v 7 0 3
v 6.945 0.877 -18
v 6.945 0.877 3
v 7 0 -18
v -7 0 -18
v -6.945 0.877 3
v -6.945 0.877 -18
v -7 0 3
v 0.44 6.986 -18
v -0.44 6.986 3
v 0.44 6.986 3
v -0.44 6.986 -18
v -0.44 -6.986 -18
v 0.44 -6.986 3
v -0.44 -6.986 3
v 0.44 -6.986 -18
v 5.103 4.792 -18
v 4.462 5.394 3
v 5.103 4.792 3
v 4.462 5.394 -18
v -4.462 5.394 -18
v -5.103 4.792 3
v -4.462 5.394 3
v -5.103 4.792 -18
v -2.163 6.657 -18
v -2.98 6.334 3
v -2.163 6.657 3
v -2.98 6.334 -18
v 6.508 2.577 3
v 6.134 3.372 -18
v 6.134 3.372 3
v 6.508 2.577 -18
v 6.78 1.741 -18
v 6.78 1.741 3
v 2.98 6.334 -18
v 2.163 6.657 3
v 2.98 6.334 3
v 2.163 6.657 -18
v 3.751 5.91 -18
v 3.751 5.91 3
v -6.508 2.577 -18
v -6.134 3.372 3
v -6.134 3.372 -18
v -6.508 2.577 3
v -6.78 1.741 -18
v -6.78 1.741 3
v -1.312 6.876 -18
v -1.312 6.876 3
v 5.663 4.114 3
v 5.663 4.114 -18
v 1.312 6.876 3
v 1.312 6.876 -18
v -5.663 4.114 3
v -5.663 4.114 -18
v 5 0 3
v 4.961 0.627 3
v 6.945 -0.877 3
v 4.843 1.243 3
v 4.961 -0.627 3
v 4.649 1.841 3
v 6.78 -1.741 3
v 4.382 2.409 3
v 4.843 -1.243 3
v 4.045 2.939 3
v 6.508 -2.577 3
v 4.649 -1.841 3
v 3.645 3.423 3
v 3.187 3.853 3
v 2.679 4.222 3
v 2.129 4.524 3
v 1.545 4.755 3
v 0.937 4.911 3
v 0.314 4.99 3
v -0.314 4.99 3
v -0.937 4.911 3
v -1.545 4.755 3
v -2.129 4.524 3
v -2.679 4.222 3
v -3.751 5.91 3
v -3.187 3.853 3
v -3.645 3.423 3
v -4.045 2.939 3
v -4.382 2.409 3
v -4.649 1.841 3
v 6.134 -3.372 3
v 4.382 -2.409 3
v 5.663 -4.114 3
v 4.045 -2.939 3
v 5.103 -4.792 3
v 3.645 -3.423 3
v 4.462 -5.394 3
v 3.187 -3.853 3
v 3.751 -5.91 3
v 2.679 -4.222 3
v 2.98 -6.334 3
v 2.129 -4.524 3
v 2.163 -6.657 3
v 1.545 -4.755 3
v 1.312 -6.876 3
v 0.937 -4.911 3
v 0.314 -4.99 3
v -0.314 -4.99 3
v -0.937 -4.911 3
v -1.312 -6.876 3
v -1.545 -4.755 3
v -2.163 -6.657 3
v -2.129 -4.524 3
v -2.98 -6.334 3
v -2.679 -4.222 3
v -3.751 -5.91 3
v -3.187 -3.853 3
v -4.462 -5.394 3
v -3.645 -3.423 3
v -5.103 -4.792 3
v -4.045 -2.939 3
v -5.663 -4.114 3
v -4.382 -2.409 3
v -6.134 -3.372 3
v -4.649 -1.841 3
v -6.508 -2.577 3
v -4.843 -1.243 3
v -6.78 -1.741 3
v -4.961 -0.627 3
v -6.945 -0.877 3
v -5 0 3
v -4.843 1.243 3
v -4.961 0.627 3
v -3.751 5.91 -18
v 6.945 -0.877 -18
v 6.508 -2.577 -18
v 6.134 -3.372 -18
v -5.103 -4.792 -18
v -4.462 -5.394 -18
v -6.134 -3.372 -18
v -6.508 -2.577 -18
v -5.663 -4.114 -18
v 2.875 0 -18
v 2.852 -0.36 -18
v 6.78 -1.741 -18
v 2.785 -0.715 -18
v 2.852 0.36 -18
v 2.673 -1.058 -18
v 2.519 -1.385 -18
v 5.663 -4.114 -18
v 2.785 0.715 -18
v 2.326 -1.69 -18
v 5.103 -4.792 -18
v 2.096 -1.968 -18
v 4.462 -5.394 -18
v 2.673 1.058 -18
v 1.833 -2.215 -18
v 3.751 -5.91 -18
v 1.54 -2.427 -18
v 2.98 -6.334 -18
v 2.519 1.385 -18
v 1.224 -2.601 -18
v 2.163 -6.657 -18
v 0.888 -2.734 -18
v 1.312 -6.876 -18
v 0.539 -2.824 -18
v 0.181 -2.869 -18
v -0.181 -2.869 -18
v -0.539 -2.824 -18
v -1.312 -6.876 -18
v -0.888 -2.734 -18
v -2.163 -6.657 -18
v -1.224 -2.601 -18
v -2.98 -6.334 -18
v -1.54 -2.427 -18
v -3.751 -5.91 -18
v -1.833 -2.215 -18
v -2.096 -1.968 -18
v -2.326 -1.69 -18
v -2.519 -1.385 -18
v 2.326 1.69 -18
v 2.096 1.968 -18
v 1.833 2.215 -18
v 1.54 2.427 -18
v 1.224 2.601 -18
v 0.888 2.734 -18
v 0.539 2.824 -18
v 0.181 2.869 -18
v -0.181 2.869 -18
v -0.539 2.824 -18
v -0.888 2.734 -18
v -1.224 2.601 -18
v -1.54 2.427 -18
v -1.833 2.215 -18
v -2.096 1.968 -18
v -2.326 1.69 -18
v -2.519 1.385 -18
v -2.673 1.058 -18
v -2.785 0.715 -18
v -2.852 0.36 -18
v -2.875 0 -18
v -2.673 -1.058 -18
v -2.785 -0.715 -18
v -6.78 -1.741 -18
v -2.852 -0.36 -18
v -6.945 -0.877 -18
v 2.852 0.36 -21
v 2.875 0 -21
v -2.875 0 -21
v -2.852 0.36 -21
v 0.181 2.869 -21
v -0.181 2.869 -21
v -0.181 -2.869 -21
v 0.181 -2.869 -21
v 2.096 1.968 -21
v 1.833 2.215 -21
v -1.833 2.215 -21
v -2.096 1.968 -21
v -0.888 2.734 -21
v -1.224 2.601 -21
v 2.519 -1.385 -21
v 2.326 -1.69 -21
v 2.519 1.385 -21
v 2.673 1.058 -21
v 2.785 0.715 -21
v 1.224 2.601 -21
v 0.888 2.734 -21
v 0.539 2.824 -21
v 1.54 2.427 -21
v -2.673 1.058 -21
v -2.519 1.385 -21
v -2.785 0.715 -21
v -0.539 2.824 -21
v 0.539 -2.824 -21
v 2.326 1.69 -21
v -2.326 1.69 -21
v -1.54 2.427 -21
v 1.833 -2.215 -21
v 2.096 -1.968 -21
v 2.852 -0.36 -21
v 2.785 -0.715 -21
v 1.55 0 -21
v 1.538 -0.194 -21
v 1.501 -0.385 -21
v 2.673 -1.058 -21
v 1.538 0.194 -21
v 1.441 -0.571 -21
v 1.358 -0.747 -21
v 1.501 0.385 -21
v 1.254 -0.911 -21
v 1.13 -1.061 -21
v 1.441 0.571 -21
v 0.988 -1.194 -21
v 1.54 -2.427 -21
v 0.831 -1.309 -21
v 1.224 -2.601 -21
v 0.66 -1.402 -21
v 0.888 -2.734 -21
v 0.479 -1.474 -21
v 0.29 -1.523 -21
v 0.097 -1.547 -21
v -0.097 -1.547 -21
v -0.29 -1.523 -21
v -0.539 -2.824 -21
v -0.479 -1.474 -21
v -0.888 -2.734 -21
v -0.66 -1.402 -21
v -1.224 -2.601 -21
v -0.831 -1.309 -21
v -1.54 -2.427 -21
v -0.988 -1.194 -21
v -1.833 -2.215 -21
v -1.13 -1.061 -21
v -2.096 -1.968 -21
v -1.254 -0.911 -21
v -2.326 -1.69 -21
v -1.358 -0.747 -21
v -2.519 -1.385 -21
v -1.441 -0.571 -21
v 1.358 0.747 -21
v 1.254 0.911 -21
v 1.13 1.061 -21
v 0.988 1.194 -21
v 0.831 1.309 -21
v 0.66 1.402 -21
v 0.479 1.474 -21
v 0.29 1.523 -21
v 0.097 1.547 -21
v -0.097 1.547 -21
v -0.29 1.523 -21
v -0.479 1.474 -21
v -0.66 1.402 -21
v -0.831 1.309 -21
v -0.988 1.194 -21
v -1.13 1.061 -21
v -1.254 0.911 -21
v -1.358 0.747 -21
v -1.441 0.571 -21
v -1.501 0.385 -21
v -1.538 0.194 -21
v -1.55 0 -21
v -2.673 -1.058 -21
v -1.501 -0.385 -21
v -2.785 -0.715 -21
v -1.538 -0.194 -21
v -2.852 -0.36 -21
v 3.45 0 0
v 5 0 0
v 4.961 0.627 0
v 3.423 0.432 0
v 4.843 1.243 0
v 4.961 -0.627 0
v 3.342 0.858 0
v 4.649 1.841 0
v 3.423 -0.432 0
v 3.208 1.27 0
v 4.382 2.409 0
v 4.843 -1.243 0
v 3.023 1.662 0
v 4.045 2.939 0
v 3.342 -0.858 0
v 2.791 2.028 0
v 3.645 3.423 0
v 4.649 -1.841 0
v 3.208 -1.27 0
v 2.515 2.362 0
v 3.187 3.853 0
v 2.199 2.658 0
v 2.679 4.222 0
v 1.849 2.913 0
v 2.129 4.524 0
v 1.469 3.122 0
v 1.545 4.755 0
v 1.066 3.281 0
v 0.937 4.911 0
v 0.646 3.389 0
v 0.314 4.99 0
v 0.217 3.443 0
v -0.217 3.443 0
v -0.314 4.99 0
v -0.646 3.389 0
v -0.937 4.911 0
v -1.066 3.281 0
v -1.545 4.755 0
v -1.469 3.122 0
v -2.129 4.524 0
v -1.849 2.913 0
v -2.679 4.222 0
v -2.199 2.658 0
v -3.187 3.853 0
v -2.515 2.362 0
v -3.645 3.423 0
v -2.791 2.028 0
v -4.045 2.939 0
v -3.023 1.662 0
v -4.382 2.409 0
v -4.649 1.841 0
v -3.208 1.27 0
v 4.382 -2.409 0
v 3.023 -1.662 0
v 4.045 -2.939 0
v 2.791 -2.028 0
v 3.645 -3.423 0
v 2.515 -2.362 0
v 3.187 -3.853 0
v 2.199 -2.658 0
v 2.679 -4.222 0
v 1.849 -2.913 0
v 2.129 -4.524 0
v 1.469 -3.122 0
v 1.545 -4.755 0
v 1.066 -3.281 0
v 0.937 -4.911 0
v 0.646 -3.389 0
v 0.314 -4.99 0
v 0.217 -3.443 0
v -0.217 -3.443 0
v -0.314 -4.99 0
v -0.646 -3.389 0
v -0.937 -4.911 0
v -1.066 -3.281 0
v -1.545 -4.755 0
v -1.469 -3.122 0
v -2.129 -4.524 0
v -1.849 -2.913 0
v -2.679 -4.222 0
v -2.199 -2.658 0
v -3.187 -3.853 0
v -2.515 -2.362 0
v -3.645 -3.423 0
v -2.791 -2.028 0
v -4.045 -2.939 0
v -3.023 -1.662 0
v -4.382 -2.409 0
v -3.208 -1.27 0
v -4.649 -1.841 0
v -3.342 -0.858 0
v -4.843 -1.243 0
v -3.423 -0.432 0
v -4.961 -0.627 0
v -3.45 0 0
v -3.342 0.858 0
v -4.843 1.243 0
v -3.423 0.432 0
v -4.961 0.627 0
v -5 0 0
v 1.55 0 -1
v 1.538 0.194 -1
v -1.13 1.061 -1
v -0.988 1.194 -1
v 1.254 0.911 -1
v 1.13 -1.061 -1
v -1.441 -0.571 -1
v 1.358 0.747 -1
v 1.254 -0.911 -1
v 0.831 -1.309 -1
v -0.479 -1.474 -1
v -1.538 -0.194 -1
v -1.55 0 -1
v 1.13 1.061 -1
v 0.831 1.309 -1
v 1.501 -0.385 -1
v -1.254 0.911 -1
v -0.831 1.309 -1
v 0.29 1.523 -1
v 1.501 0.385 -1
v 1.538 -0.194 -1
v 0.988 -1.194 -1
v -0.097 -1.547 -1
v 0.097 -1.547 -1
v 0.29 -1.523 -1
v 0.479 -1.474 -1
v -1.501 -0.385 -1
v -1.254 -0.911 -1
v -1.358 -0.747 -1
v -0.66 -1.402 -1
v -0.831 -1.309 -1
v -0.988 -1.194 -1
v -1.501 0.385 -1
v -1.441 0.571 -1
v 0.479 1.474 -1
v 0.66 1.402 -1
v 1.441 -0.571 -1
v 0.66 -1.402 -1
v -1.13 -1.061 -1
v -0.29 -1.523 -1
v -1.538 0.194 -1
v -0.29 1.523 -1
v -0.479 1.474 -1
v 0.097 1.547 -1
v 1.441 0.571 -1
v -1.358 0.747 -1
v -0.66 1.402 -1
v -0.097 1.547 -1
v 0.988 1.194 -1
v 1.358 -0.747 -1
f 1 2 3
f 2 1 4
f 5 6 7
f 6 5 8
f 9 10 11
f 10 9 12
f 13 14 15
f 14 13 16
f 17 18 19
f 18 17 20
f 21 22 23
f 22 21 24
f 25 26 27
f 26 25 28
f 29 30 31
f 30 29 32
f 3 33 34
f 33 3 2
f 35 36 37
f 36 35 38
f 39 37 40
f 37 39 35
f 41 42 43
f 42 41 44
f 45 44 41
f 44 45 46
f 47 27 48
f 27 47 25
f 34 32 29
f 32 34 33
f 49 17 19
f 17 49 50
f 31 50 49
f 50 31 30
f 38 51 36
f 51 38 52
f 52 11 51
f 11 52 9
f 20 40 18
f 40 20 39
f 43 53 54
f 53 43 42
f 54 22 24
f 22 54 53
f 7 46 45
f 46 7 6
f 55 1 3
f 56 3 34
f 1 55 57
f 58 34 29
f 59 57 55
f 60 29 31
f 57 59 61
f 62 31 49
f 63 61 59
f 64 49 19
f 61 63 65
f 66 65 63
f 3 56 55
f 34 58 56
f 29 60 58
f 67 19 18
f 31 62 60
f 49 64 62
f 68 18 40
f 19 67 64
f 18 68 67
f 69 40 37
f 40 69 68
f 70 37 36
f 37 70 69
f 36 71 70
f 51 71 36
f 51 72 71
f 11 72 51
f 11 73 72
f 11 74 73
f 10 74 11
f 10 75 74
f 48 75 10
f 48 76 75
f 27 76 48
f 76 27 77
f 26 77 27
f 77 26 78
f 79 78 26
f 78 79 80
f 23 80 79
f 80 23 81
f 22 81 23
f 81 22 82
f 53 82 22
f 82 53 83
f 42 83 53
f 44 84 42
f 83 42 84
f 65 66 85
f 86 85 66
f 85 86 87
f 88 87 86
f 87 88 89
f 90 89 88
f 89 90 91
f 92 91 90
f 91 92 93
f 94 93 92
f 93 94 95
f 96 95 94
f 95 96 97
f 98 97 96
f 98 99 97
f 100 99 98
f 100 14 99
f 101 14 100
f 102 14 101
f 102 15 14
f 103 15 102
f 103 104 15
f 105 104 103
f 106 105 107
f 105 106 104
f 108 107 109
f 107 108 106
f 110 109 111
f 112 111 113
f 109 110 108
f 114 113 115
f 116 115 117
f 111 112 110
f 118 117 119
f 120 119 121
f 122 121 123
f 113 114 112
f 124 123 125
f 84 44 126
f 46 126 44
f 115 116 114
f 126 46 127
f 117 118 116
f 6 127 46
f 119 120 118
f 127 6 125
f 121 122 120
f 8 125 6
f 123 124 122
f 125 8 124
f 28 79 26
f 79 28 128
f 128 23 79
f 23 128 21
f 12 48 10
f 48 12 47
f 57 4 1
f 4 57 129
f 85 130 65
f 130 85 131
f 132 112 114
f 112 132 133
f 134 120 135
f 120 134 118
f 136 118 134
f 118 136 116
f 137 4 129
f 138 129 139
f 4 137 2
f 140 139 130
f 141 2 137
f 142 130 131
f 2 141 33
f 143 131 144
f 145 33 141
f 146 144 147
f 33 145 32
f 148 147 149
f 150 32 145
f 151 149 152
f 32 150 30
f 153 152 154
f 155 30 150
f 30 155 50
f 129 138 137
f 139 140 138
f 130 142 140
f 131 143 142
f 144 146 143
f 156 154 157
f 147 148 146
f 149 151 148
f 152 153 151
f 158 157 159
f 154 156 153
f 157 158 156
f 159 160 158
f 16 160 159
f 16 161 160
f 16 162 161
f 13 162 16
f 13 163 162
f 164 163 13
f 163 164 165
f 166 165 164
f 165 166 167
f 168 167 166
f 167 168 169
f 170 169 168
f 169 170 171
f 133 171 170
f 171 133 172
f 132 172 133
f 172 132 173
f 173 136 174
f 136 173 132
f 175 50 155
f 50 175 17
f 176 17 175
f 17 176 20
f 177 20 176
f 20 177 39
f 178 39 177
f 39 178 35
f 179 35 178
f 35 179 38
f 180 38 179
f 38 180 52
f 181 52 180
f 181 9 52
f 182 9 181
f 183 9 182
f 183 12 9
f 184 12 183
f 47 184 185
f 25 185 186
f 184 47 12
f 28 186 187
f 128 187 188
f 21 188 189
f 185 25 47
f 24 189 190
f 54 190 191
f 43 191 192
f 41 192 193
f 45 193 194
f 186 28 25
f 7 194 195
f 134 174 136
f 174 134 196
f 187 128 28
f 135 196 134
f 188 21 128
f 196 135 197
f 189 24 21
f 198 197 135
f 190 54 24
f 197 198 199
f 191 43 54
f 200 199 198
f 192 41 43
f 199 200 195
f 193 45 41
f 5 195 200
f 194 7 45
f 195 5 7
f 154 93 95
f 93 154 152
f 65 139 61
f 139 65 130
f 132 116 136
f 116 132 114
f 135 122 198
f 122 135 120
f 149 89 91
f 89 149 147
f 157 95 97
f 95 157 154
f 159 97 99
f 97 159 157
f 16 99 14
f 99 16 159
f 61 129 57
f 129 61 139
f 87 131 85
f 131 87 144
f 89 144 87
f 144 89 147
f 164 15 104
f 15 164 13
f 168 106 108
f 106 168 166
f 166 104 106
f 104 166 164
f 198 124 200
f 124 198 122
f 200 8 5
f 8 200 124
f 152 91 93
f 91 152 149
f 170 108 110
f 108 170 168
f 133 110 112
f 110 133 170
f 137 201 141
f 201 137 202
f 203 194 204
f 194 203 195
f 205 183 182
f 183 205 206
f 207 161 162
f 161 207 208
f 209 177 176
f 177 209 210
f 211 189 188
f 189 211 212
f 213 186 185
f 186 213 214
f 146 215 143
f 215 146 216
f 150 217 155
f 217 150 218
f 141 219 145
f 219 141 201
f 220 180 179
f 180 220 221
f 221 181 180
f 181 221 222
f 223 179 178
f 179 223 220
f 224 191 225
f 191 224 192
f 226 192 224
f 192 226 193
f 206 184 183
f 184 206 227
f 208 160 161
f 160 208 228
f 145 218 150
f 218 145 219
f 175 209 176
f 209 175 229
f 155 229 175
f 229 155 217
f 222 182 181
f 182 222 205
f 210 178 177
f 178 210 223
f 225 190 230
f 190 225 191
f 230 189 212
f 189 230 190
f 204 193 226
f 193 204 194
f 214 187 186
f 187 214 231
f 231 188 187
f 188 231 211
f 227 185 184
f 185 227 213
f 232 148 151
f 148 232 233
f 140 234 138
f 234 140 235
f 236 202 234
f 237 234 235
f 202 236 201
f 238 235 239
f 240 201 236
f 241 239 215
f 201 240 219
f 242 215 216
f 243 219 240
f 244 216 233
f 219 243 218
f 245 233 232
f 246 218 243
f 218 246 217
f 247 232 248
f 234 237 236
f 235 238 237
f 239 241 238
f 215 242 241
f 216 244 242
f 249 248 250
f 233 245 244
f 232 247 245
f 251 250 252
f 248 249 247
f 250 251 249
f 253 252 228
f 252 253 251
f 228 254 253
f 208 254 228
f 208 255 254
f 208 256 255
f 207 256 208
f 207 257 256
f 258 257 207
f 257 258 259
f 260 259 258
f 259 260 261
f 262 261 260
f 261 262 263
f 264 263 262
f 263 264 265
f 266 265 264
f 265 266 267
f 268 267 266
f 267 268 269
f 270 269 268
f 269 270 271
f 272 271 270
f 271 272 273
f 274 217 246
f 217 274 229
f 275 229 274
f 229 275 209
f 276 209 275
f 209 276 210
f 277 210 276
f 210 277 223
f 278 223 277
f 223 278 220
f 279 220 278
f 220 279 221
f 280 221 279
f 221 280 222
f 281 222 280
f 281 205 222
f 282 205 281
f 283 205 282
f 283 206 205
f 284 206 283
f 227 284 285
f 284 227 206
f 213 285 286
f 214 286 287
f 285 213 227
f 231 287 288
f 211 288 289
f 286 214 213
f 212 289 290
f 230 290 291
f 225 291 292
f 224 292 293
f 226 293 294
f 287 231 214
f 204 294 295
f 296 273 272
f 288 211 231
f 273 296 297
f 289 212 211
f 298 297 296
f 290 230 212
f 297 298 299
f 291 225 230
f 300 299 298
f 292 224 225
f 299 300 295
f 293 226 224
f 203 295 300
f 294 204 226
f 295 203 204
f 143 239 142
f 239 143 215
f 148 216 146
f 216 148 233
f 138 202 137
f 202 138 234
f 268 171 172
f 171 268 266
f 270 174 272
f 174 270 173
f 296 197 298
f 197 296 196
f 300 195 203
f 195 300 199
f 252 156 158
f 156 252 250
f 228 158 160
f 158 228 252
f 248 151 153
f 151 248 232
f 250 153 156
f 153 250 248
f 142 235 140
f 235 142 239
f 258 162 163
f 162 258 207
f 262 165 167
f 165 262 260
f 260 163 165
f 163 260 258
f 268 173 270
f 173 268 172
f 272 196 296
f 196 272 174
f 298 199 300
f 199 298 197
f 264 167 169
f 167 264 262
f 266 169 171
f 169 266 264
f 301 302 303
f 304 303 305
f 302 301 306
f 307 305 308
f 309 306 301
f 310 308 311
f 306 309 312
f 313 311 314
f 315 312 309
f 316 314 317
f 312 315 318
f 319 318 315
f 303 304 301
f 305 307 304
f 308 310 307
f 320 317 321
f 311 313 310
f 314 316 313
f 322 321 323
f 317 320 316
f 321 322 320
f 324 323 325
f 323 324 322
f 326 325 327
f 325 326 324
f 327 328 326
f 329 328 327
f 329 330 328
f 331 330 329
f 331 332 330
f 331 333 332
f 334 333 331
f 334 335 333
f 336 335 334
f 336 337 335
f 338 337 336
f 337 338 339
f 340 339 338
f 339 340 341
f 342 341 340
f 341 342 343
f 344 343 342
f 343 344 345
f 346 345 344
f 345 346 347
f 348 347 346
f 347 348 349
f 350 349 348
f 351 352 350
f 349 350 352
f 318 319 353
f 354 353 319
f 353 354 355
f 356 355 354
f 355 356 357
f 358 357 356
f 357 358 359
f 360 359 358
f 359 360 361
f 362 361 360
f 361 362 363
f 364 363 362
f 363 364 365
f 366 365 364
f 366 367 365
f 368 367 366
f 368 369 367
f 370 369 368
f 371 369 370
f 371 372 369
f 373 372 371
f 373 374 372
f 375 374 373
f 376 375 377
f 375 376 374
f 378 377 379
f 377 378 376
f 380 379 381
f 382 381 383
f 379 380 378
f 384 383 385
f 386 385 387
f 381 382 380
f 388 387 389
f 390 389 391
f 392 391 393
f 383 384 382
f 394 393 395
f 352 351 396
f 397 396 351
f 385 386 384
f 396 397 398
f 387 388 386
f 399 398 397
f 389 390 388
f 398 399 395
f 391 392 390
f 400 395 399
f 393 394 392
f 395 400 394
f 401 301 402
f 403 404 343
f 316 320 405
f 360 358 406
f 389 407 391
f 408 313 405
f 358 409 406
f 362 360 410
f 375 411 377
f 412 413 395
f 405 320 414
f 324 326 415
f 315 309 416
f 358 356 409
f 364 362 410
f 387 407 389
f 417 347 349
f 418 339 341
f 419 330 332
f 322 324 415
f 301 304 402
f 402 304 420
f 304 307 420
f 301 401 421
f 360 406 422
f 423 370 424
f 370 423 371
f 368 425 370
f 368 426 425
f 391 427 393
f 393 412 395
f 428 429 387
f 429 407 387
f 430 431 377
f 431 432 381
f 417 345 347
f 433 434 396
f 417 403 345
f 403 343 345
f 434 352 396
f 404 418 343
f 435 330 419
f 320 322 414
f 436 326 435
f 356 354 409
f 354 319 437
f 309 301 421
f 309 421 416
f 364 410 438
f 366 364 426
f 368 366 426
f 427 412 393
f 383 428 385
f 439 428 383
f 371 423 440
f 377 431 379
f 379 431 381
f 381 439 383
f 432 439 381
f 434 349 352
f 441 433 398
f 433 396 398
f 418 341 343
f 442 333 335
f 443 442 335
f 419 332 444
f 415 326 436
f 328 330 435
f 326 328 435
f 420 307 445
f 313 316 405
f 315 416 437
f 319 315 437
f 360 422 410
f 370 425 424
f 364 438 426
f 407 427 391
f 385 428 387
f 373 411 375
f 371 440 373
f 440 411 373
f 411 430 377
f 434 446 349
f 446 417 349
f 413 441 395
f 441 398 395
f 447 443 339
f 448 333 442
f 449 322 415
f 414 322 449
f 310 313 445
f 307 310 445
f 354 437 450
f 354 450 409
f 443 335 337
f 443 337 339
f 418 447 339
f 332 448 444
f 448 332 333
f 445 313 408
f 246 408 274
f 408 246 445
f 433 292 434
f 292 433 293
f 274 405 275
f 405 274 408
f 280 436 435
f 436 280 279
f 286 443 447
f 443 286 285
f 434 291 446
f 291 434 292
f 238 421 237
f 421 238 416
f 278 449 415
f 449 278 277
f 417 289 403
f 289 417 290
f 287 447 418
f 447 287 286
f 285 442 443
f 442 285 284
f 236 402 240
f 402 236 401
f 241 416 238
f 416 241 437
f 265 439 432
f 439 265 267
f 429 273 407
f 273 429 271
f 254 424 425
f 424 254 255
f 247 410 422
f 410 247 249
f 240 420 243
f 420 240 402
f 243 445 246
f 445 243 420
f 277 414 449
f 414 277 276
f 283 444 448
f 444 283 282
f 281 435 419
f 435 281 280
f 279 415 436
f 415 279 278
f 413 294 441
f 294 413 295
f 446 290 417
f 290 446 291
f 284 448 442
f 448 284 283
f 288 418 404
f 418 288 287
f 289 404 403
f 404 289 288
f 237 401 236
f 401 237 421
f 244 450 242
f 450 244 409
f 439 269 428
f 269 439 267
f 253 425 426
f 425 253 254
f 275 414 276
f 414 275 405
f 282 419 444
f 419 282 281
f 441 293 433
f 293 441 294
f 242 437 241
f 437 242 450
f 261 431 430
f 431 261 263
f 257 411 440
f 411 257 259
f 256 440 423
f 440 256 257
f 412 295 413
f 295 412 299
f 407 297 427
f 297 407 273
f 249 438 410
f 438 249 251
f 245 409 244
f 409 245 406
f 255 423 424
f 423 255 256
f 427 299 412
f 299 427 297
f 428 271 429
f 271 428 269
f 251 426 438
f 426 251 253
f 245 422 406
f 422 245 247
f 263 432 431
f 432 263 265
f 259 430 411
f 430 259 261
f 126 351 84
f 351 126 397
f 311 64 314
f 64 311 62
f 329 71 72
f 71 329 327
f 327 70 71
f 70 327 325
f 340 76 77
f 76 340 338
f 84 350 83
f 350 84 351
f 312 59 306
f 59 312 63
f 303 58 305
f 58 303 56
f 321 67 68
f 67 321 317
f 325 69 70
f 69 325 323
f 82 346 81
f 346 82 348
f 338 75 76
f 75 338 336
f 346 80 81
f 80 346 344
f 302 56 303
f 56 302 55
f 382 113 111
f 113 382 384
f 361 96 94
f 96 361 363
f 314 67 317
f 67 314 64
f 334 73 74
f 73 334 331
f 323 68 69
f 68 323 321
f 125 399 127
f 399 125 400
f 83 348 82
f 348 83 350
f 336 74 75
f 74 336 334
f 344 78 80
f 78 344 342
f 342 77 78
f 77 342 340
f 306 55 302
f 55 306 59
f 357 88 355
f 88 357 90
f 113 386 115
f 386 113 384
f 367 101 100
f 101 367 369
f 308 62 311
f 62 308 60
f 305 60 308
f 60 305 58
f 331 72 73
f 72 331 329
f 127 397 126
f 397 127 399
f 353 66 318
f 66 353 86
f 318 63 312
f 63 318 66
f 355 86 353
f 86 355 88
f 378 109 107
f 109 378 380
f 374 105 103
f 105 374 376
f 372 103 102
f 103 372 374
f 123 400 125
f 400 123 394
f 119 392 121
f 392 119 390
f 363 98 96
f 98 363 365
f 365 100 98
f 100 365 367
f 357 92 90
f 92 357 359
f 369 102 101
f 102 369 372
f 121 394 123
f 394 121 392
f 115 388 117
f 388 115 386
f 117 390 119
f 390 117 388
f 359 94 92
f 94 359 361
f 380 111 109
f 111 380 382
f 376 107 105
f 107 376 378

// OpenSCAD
$fn = 50;


difference() {
	union() {
		translate(v = [0, 0, -18.0000000000]) {
			cylinder(h = 21, r = 7.0000000000);
		}
		#translate(v = [0, 0, -21.0000000000]) {
			cylinder(h = 21, r = 2.8750000000);
		}
	}
	union() {
		translate(v = [0, 0, 0]) {
			rotate(a = [0, 0, 0]) {
				difference() {
					union() {
						translate(v = [0, 0, -21.0000000000]) {
							cylinder(h = 21, r = 1.2500000000);
						}
						translate(v = [0, 0, -1.0000000000]) {
							cylinder(h = 1.0000000000, r1 = 1.5500000000, r2 = 3.4500000000);
						}
						translate(v = [0, 0, -21.0000000000]) {
							cylinder(h = 21, r = 1.5500000000);
						}
						translate(v = [0, 0, -21.0000000000]) {
							cylinder(h = 21, r = 1.2500000000);
						}
					}
					union();
				}
			}
		}
		#cylinder(h = 3, r = 5.0000000000);
	}
}
